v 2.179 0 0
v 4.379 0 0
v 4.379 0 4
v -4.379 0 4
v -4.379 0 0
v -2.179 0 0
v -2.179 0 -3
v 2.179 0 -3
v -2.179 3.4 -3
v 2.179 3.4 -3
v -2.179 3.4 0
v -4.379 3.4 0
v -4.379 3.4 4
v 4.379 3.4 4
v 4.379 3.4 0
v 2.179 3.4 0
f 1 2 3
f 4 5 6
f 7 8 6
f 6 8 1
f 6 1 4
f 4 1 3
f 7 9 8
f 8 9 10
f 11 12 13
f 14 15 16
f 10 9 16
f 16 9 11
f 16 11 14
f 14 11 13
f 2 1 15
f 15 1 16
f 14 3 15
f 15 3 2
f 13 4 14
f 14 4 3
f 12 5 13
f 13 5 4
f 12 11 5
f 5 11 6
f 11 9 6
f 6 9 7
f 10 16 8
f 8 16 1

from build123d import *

# Parameters (mm, degrees)
EXTRUDE_1_DEPTH     = 3.4
SKETCH_2_W          = 0.4
SKETCH_2_H          = 3
CUT_EXTRUDE_1_DEPTH = 7.83637537


with BuildPart() as part:
    # Эскиз1 → Бобышка-Вытянуть1 (new body)
    with BuildSketch(Plane(origin=(0, 0, 0), x_dir=(1, 0, 0), z_dir=(0, 1, 0))):
        Polygon((2.37904421, -4), (-2.37904421, -4), (-4.37904421, -4), (-4.37904421, 0), (-2.37904421, 0), (-2.37904421, 3), (2.37904421, 3), (2.37904421, 0), (4.37904421, 0), (4.37904421, -4), align=None)
    extrude(amount=EXTRUDE_1_DEPTH)

    # Эскиз2 → Вырез-Вытянуть1 (cut, through all)
    with BuildSketch(Plane(origin=(0, 0, 0), x_dir=(1, 0, 0), z_dir=(0, 1, 0))):
        with Locations((2.37904421, 1.5)):
            Rectangle(SKETCH_2_W, SKETCH_2_H)
        with Locations((-2.37904421, 1.5)):
            Rectangle(SKETCH_2_W, SKETCH_2_H)
    extrude(amount=CUT_EXTRUDE_1_DEPTH, mode=Mode.SUBTRACT)


solid = part.part
